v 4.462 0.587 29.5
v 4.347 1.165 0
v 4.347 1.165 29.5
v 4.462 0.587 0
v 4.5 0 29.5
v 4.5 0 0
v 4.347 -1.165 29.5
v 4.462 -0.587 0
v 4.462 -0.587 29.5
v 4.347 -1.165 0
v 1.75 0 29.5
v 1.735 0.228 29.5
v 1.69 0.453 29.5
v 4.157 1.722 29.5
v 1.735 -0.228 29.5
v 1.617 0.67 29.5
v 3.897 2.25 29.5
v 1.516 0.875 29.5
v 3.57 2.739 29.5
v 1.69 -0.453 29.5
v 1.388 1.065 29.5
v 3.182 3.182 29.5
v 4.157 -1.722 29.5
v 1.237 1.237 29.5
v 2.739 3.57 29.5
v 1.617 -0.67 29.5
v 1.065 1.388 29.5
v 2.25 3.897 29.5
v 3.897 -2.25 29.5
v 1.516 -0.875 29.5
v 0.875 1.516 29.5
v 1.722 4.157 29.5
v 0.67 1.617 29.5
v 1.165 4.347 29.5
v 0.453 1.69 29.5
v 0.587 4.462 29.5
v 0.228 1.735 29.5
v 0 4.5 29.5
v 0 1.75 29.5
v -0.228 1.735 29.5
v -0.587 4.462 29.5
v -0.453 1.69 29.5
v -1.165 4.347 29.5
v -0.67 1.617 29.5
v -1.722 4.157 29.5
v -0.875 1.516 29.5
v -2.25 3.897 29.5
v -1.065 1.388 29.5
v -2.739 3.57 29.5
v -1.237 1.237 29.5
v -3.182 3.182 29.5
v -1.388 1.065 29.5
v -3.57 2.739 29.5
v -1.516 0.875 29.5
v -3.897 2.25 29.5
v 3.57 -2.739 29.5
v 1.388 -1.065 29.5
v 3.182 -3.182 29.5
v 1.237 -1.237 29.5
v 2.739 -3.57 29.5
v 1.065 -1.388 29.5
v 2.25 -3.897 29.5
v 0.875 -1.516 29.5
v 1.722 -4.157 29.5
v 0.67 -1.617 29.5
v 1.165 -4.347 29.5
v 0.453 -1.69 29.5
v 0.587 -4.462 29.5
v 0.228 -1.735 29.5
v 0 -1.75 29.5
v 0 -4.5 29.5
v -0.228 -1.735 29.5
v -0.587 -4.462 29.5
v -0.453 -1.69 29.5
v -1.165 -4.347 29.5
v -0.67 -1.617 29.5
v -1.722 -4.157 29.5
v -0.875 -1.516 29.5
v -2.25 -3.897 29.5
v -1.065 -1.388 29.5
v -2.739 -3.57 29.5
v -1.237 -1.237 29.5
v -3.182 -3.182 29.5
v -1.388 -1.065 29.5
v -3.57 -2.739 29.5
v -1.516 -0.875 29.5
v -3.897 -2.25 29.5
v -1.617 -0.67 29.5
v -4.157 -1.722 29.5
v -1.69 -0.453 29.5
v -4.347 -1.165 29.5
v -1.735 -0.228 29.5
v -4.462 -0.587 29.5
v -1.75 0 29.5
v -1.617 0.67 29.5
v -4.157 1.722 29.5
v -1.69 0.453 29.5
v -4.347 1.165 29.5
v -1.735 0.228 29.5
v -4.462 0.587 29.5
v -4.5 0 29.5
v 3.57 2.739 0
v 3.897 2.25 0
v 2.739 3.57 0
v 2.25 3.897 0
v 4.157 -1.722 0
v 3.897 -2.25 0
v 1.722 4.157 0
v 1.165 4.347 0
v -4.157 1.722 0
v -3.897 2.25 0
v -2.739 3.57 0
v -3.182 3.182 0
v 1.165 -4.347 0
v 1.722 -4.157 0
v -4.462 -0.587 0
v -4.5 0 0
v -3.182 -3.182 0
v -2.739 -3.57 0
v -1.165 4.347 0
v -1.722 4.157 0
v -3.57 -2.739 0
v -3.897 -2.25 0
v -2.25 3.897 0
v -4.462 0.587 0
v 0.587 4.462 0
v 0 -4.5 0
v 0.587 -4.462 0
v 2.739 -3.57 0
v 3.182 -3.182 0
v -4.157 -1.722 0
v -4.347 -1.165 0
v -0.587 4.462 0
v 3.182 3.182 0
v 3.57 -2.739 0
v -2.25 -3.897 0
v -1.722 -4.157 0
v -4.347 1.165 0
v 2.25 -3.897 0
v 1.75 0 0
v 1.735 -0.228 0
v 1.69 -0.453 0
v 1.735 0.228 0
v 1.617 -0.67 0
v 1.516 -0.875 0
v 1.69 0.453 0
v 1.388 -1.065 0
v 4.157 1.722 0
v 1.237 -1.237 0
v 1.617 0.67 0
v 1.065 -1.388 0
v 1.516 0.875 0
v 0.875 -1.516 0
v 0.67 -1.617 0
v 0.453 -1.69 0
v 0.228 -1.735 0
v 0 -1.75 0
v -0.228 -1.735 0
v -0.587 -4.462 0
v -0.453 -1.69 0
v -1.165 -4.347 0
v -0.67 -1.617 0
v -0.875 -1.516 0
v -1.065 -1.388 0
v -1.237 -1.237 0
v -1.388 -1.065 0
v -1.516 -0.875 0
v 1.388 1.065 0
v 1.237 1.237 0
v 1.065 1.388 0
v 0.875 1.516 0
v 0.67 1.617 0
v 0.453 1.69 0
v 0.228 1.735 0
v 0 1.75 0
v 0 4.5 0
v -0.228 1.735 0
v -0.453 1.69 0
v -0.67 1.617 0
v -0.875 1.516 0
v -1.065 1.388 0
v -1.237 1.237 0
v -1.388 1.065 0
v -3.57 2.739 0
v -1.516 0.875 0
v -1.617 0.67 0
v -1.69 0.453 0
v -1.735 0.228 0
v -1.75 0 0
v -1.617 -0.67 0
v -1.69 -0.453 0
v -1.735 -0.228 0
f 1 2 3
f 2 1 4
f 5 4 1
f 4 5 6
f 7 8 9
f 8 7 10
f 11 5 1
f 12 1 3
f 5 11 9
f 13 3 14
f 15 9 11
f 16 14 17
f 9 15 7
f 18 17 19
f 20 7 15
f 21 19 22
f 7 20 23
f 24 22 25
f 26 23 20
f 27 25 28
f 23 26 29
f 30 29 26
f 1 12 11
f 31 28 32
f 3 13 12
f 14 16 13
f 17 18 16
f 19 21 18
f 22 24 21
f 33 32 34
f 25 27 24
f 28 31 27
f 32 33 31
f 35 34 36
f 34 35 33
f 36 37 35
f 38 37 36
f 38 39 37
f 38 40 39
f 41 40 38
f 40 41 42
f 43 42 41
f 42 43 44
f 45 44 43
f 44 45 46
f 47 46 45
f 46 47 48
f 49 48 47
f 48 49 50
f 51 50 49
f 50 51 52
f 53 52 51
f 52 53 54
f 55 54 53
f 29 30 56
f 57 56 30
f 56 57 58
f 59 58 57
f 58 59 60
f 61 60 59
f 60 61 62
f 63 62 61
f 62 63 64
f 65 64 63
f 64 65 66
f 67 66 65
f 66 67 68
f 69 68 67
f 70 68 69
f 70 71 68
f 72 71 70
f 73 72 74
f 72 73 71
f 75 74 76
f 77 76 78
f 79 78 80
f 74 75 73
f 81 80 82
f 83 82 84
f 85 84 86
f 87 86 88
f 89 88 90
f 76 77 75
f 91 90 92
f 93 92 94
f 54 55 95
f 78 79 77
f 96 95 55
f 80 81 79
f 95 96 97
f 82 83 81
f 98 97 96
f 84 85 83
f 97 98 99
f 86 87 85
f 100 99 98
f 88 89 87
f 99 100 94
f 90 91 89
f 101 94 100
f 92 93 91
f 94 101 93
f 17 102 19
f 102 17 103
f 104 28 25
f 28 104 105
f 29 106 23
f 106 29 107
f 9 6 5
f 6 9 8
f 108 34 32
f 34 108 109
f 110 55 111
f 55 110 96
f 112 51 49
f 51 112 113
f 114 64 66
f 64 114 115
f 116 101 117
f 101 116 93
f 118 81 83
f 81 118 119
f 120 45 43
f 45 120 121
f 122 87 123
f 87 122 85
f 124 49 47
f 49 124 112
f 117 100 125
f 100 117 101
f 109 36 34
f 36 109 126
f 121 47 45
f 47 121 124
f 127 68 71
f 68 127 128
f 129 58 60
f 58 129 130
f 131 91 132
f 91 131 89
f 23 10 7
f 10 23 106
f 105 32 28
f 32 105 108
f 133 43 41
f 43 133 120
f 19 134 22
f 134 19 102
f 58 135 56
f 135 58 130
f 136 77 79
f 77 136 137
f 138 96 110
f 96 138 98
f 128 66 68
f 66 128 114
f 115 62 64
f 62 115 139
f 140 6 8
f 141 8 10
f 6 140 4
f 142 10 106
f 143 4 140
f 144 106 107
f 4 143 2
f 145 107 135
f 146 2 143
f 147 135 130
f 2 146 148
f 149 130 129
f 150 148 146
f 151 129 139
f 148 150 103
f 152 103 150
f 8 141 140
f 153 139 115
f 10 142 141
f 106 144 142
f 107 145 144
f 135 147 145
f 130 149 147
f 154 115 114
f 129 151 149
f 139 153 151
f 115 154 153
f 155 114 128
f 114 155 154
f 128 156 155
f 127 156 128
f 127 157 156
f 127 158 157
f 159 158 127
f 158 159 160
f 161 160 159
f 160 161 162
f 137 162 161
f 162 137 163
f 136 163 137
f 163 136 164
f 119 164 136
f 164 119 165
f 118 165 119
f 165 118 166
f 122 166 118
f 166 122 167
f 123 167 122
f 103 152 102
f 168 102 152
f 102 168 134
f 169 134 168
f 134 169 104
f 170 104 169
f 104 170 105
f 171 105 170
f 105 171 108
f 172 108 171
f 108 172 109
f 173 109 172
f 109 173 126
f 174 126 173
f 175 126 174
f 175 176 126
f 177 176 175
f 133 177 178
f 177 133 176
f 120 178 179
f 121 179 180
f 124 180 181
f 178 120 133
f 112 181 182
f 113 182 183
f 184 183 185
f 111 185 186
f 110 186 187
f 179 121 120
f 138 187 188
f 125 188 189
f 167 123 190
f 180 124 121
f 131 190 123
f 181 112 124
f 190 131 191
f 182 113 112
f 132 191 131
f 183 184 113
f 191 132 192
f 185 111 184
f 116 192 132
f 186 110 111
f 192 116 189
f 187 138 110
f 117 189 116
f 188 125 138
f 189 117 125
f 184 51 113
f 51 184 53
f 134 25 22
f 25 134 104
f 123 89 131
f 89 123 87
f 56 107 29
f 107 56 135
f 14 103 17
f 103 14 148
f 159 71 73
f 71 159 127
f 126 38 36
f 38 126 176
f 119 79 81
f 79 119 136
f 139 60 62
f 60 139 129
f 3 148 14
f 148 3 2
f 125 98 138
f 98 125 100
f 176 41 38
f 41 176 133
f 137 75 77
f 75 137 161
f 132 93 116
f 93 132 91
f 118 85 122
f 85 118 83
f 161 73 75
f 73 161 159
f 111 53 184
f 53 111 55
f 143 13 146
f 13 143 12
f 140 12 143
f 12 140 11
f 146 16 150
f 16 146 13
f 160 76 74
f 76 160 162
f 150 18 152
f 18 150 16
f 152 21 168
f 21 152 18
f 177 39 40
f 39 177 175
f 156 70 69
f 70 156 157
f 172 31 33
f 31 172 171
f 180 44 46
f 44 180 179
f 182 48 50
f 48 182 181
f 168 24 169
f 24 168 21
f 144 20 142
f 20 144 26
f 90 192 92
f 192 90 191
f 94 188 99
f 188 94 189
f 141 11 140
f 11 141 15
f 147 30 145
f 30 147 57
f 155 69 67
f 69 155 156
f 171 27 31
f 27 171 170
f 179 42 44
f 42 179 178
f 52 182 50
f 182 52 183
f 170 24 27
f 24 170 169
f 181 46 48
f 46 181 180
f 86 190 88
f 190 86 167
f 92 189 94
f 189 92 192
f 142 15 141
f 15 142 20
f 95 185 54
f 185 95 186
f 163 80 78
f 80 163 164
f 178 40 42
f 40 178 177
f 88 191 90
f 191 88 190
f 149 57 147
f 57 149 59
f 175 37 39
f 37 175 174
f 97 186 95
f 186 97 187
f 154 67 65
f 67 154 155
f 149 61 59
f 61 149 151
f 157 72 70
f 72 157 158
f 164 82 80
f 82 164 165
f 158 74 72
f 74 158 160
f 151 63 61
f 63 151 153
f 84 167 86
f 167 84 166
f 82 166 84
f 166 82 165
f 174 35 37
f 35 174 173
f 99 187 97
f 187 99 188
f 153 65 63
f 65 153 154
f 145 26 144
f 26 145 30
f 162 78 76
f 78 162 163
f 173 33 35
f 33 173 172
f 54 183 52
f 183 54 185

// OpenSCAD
// file: parameters.scad
// =============================================================================
// Gen-BP — nightly 2026-10-07 (physics_scorer, honest magpylib watts)
// Cheapest upgrade of the champion: keep Gen-BL's wound bobbins, stator, gap sleeve, endbells and Ø134 steel, and print only two new rotor carriers — 5.00 mm thick (flush magnet seat, recess 0 instead of 0.10 mm, magnet→wound envelope still 0.50 mm) with the diametric Ø5 assists moved from R40/50/60 to R43/50/57. Modular: the rotor is the only swapped module.
// Clocking 0 deg (magnets N facing S) + D-flat keyed bore + index notch + flip-symmetric hole map.
// Windable 2-piece bobbin; turns = physics_scorer turns_fit; copper only between flanges.
// Steel back-iron: 2× Ø134 × 4.76 mm (3/16") mild-steel discs (steel_backiron_disc.dxf); magnets sit ON the steel
// (through-pockets) -> score with --back-iron.
// =============================================================================
topology            = "dual_rotor";

// --- Wire / winding (physics_scorer winding-fit) -------------------------------
wire_awg            = 26;
wire_od             = 0.45;     // insulated OD mm (bare 0.405)
fill_realistic      = 0.65;     // insulated-wire area / window (DENSE layered wind with a jig; scorer cap 0.65)
turns               = 566;       // = physics_scorer turns_fit (do NOT raise)
coil_former_type    = "bobbin";
coil_core_inset     = 17.10;     // radial copper build: hub = copper boundary inset by this
wind_build_axial    = 0.0;      // nothing proud of the flanges
wind_build_radial   = 0.0;

// --- Bobbin (base + lid) ---------------------------------------------------------
coil_id_r           = 29.00;    // copper boundary sector
coil_od_r           = 71.00;
span_deg            = 52.68;    // = pitch - 2*asin((wall+0.85)/coil_id_r) -> >=1.2 mm stator web
former_web          = 8.10;     // copper height between flanges (TALL copper: steel keeps Bz up)
flange_t            = 0.80;     // >= 0.8 mm FDM wall rule (tall winds push on the flanges)
wall                = 1.00;     // flange lip beyond copper
former_bare_h       = former_web + 2 * flange_t;
coil_envelope_h     = former_bare_h + 2 * wind_build_axial;
tab_w               = 7.0;
tab_len             = 7.0;
tab_h               = former_bare_h / 2;
pin_d               = 1.9;      // 1.75 mm filament locating pin
coil_mount_r        = coil_od_r + 0.2 + 4.0;
lead_y              = 1.6;
lead_slot_w         = 0.9;
lead_groove_d       = 0.6;

// --- Gap -------------------------------------------------------------------------
run_clear           = 0.50;     // rotor face -> flange
gap_spacer_h        = run_clear + wind_build_axial;
m2m                 = coil_envelope_h + 2 * run_clear;   // rotor face to rotor face (= gap_sleeve length)

// --- Stator ----------------------------------------------------------------------
coil_stations       = 6;
bay_clear           = 0.25;
stator_thick        = former_bare_h;                        // bobbins flush both faces
stator_od           = 160;
shaft_clear_stator  = 14.0;     // stator is static; gap sleeve OD 12 spins inside

// --- Rotor(s) --------------------------------------------------------------------
magnet_Br           = 1.43;     // N52
magnet_d_large      = 20.0;
magnet_h_large      = 5.0;      // one O20x5 per pocket
magnet_h_small      = 5.0;      // one O5x5 per pocket
halbach_magnetisation = "diametric"; // O5x5 assist magnets MUST be DIAMETRICALLY magnetised (tangential)
rotor_b_same_axis   = true;     // same-index magnets share one axis: N faces S across the gap
large_pocket_d      = 20.3;
small_pocket_d      = 5.3;
pocket_h            = 5.00;     // THROUGH the carrier: magnet back face sits on the steel disc (FLUSH seat: carrier = magnet height, magnet face level with the rotor face)
large_n             = 8;
R_large             = 50.0;
R_small_inner       = 43.0;
R_small_mid         = 50.0;
R_small_outer       = 57.0;
small_r_list        = [R_small_inner, R_small_mid, R_small_outer];   // O5 pockets between poles
carrier_od          = 134.0;
carrier_thick       = pocket_h;
hub_h               = 12.0;     // > steel_t + insert: radial set-screw clears the steel
hub_od              = 24.0;     // slim hub so the M4 brace rods fit at R~18 inside the coil ring
hub_insert_d        = 4.0;      // M3 heat-set insert, radial, bears on the D-flat
rotor_b_offset_deg  = 0.0;      // CLOCKING: magnets directly opposite
shaft_key           = "dflat";
dflat_depth         = 0.5;      // 8 mm shaft with 0.5 mm flat (7.5 across flat)
index_notch_d       = 3.0;

// --- Steel back-iron (buyable laser-cut) -------------------------------------------
steel_t             = 4.76;      // mild steel thickness (image method ignores it; sized from steel_flux.py so the return path stays well below saturation)
steel_center_hole   = 26.0;     // slips over the rotor hub (OD 24)
steel_od            = carrier_od;   // steel disc OD = rotor carrier OD

// --- Modular MAX interface ----------------------------------------------------------
shaft_bore          = 8.35;
dflat_x             = 4.0 - dflat_depth + (shaft_bore - 8.0) / 2;
bearing_d           = 21.85;
bearing_h           = 7.2;
m3_clear            = 3.5;
bolt_r_inner        = 30.0;     // M3 steel-disc clamp bolts (inside the magnet ring)
bolt_n_inner        = 4;
bolt_inner_angles   = [0, 90, 180, 270];
bolt_r_outer        = 63.0;     // M3 steel-disc clamp bolts (outside the magnet ring)
bolt_outer_angles   = [45, 135, 225, 315];
flange_bolt_r       = 73.0;     // frame rods: OUTSIDE the rotor OD (rotors spin inside them)
flange_bolt_n       = 6;
flange_bolt_offset  = 30.00;    // between coil stations -> never cuts a lead groove/tab
brace_r             = 18.0;
brace_d             = 4.3;      // temporary M4 jack rods (assembly only)
brace_n             = 4;
brace_angles        = [45, 135, 225, 315];          // flip-symmetric

spacer_pad_od       = 14.0;
spacer_pad_id       = m3_clear;
endbell_od          = 160;
endbell_thick       = 8.0;
endbell_shaft_clear = 10.0;
collar_h            = 10.0;
standoff_od         = 9.0;
frame_standoff_h    = run_clear + carrier_thick + hub_h + collar_h + 2.0;
sleeve_od           = 12.0;
plate_max_mm        = 410;

$fn = 64;
// main file
// Gen-BP — frame standoff tube between stator and an endbell, on each M3 frame rod (outside rotor OD).
// Print x12. Height = frame_standoff_h (rotor + steel + hub + collar + running clearance).
include <parameters.scad>;
$fn = 48;
difference() {
    cylinder(d=standoff_od, h=frame_standoff_h);
    translate([0, 0, -0.1]) cylinder(d=m3_clear, h=frame_standoff_h + 0.2);
}
